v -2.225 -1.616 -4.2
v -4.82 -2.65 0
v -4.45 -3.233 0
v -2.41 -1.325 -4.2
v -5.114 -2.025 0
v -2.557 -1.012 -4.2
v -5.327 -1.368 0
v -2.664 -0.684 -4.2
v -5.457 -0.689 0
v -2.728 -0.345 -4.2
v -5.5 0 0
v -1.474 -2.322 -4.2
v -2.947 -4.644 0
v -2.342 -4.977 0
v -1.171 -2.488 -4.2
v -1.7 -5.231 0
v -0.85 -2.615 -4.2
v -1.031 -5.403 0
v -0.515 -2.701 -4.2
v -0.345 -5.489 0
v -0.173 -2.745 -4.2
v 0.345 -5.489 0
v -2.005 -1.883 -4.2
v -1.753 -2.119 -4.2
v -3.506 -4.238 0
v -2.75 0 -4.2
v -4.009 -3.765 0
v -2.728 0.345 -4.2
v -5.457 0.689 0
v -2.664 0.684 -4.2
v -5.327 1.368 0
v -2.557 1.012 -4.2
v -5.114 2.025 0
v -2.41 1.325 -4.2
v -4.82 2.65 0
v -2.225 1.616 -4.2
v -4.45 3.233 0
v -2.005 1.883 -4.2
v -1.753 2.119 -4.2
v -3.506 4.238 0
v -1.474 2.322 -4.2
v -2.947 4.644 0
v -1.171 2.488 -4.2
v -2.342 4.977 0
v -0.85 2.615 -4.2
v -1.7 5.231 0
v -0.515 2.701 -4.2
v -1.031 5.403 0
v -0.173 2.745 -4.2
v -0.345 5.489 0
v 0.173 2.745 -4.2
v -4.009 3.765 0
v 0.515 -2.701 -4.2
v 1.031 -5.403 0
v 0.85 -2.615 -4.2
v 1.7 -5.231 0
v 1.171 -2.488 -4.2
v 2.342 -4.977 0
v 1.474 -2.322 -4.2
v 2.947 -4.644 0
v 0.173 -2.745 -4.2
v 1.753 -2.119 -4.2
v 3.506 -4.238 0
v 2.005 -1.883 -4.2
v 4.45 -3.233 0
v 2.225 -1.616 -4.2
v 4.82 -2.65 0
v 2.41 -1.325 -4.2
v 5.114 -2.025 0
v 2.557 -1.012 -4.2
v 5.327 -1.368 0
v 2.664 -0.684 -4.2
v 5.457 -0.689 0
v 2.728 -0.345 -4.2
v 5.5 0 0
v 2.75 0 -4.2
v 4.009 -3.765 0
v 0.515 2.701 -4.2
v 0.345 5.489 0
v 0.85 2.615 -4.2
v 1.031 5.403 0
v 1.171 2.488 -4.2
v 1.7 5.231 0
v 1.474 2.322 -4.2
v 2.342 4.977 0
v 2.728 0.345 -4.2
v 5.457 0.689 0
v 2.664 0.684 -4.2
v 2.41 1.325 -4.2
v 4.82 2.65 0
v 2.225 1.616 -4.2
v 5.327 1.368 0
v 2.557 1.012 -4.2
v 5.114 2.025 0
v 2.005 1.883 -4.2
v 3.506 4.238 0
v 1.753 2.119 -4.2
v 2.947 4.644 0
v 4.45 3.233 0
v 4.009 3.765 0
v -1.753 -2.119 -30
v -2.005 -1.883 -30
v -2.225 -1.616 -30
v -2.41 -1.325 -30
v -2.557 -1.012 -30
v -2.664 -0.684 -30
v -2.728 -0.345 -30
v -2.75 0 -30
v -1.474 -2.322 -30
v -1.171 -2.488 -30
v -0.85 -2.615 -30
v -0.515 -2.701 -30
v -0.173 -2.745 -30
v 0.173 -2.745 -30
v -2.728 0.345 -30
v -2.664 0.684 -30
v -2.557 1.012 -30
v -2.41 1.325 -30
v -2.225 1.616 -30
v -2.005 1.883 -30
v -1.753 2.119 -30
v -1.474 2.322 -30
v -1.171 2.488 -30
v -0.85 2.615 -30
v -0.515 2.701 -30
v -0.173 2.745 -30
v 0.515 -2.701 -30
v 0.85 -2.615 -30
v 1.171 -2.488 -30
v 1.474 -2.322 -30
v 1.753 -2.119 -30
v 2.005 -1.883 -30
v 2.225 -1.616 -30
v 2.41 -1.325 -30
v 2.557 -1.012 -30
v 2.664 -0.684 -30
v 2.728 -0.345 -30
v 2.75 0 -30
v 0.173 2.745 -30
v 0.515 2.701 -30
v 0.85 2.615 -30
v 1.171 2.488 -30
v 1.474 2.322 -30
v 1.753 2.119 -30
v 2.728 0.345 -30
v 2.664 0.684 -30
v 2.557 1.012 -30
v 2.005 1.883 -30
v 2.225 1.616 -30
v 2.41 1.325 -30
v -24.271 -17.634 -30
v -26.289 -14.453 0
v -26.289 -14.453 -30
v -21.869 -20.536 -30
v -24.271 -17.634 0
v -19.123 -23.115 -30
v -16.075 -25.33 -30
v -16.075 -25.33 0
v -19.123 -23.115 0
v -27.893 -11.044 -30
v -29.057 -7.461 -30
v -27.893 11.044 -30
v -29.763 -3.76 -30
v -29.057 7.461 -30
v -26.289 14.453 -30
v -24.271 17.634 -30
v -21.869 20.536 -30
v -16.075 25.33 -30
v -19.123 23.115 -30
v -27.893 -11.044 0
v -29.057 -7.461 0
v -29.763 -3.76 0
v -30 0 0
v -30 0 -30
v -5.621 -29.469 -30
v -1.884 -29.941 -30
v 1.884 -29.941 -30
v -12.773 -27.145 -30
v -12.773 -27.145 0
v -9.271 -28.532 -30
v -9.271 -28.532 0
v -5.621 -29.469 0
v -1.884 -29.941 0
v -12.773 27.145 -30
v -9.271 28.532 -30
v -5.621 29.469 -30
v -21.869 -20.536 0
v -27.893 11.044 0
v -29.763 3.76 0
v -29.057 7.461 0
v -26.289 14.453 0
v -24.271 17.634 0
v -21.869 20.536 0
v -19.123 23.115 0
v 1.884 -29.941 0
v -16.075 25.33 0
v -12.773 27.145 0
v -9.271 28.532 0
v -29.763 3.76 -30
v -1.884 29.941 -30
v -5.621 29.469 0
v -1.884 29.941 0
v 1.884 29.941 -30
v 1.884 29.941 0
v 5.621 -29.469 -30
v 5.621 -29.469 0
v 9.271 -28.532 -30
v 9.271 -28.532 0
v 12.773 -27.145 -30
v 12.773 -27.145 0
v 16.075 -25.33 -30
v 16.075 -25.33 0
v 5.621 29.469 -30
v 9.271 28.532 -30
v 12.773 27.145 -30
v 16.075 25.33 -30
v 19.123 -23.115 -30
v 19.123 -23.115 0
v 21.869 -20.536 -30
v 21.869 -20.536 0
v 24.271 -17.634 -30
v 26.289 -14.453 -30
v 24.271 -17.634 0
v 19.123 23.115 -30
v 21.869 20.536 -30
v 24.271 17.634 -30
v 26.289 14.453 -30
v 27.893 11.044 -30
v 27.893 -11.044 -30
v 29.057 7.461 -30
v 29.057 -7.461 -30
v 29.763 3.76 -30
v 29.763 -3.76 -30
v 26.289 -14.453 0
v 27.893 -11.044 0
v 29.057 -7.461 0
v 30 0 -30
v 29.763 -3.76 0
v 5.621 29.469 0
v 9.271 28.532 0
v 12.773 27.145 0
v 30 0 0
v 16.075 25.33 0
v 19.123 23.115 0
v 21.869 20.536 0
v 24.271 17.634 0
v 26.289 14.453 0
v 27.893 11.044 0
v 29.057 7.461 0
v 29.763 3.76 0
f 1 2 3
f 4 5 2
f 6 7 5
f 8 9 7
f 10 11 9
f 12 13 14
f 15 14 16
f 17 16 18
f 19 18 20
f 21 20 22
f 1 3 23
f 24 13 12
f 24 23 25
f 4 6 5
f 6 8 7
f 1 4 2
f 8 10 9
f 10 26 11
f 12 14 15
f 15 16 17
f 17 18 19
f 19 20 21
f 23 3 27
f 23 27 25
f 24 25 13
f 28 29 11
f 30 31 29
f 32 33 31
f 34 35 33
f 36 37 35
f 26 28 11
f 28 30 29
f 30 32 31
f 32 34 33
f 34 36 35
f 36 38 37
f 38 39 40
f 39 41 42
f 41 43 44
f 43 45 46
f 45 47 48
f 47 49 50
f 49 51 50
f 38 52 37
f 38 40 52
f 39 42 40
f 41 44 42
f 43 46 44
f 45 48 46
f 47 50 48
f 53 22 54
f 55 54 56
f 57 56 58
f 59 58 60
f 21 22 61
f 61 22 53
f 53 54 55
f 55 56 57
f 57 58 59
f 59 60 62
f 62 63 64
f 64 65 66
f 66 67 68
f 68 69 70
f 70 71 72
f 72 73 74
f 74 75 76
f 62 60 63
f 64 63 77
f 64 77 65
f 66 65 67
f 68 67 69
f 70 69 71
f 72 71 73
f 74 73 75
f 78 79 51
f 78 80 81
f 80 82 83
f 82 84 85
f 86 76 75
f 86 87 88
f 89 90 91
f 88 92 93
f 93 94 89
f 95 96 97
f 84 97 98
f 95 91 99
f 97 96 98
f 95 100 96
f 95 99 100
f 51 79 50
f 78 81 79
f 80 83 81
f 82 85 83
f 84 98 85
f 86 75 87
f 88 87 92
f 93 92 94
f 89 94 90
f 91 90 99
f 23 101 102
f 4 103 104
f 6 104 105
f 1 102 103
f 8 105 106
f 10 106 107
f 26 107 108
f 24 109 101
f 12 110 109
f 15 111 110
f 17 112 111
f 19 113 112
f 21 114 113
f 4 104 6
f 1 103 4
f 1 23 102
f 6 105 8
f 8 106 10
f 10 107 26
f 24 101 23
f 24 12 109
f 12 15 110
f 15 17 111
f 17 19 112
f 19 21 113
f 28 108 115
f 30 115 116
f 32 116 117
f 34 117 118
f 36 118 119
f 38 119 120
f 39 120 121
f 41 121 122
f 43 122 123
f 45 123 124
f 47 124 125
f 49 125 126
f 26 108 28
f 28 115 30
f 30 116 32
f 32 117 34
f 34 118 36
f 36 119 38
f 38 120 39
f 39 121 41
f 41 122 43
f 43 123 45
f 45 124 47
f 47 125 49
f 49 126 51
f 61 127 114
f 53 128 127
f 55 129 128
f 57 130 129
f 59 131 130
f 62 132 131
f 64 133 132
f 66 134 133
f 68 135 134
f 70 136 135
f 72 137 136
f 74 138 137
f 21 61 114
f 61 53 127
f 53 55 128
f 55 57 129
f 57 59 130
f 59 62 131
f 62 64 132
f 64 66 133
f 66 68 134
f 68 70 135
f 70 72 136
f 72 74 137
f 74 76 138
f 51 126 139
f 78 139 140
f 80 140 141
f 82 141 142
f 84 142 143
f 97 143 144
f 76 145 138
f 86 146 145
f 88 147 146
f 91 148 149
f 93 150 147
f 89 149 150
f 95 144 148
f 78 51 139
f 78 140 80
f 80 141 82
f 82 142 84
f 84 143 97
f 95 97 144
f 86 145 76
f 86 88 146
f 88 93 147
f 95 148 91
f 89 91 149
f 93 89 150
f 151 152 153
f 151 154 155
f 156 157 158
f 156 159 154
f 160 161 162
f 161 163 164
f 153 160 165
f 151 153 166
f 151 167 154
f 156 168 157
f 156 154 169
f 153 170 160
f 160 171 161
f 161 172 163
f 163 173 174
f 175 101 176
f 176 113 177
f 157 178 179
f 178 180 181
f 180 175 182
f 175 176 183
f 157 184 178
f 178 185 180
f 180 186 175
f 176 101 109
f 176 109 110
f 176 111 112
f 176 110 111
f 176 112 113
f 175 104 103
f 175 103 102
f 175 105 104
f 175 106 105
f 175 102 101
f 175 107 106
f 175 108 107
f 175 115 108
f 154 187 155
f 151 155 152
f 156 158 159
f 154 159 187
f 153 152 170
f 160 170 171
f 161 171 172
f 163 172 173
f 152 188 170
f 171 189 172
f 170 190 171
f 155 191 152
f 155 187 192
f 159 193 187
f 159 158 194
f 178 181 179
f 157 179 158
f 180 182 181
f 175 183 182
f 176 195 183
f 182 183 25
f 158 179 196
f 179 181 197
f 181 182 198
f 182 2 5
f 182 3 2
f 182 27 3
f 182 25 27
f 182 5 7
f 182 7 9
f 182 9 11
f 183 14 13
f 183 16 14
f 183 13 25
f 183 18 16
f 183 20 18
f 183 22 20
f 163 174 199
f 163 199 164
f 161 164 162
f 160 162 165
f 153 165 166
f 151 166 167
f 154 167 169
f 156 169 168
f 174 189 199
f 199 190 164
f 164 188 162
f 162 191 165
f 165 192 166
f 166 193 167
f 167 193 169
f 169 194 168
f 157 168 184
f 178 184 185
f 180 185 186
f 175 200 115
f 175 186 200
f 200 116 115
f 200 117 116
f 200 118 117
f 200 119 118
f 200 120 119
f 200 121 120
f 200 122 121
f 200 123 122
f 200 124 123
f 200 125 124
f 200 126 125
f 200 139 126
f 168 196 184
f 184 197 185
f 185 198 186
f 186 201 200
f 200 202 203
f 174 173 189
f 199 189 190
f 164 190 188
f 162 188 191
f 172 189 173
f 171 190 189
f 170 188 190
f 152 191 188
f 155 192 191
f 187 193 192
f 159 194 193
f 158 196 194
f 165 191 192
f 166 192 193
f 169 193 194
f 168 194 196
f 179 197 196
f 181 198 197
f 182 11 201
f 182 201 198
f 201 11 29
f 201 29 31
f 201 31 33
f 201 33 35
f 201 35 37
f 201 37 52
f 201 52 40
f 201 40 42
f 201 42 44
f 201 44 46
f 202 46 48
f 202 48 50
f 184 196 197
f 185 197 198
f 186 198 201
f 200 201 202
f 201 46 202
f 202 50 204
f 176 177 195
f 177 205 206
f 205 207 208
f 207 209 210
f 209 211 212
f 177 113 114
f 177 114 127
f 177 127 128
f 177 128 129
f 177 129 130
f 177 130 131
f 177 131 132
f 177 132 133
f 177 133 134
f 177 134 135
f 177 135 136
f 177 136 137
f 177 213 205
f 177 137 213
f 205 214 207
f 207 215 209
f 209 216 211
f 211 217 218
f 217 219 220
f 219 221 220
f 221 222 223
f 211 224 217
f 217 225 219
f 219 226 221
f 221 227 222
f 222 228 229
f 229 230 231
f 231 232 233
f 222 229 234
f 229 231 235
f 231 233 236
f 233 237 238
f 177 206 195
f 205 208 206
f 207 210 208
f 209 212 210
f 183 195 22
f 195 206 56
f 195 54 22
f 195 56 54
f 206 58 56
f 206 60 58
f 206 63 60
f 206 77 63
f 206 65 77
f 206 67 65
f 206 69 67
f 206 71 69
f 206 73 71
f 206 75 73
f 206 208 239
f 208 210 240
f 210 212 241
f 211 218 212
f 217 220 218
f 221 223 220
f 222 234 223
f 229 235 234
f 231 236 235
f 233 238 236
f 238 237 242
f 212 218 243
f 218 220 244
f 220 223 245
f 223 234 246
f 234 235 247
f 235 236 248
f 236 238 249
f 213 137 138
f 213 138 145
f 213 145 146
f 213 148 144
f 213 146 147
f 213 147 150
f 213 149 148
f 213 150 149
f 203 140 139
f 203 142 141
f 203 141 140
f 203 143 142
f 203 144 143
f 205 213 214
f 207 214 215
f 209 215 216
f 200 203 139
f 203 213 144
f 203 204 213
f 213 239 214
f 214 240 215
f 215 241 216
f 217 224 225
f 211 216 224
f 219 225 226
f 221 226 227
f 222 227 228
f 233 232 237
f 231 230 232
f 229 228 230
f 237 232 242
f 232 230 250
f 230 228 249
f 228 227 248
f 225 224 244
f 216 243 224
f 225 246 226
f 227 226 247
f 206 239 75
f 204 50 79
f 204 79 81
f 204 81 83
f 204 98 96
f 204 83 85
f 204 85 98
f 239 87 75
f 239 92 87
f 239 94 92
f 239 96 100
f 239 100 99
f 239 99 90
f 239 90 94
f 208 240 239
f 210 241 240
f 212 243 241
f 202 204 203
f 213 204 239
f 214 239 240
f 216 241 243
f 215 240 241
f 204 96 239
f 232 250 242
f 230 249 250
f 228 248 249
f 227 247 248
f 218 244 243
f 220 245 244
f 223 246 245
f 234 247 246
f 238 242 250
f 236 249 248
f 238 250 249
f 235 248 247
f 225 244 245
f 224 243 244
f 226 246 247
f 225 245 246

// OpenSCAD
$fn = 50;

difference() {
	union() {
		translate(v = [0, 0, -30.0]) {
			cylinder(h = 30, r = 30.0);
		}
	}
	union() {
		translate(v = [0, 0, 0]) {
			rotate(a = [0, 0, 0]) {
				difference() {
					union() {
						translate(v = [0, 0, -33.0]) {
							cylinder(h = 33, r = 2.25);
						}
						translate(v = [0, 0, -4.2]) {
							cylinder(h = 4.2, r1 = 2.75, r2 = 5.5);
						}
						translate(v = [0, 0, -33.0]) {
							cylinder(h = 33, r = 2.75);
						}
						translate(v = [0, 0, -33.0]) {
							cylinder(h = 33, r = 2.25);
						}
					}
					union();
				}
			}
		}
	}
}
